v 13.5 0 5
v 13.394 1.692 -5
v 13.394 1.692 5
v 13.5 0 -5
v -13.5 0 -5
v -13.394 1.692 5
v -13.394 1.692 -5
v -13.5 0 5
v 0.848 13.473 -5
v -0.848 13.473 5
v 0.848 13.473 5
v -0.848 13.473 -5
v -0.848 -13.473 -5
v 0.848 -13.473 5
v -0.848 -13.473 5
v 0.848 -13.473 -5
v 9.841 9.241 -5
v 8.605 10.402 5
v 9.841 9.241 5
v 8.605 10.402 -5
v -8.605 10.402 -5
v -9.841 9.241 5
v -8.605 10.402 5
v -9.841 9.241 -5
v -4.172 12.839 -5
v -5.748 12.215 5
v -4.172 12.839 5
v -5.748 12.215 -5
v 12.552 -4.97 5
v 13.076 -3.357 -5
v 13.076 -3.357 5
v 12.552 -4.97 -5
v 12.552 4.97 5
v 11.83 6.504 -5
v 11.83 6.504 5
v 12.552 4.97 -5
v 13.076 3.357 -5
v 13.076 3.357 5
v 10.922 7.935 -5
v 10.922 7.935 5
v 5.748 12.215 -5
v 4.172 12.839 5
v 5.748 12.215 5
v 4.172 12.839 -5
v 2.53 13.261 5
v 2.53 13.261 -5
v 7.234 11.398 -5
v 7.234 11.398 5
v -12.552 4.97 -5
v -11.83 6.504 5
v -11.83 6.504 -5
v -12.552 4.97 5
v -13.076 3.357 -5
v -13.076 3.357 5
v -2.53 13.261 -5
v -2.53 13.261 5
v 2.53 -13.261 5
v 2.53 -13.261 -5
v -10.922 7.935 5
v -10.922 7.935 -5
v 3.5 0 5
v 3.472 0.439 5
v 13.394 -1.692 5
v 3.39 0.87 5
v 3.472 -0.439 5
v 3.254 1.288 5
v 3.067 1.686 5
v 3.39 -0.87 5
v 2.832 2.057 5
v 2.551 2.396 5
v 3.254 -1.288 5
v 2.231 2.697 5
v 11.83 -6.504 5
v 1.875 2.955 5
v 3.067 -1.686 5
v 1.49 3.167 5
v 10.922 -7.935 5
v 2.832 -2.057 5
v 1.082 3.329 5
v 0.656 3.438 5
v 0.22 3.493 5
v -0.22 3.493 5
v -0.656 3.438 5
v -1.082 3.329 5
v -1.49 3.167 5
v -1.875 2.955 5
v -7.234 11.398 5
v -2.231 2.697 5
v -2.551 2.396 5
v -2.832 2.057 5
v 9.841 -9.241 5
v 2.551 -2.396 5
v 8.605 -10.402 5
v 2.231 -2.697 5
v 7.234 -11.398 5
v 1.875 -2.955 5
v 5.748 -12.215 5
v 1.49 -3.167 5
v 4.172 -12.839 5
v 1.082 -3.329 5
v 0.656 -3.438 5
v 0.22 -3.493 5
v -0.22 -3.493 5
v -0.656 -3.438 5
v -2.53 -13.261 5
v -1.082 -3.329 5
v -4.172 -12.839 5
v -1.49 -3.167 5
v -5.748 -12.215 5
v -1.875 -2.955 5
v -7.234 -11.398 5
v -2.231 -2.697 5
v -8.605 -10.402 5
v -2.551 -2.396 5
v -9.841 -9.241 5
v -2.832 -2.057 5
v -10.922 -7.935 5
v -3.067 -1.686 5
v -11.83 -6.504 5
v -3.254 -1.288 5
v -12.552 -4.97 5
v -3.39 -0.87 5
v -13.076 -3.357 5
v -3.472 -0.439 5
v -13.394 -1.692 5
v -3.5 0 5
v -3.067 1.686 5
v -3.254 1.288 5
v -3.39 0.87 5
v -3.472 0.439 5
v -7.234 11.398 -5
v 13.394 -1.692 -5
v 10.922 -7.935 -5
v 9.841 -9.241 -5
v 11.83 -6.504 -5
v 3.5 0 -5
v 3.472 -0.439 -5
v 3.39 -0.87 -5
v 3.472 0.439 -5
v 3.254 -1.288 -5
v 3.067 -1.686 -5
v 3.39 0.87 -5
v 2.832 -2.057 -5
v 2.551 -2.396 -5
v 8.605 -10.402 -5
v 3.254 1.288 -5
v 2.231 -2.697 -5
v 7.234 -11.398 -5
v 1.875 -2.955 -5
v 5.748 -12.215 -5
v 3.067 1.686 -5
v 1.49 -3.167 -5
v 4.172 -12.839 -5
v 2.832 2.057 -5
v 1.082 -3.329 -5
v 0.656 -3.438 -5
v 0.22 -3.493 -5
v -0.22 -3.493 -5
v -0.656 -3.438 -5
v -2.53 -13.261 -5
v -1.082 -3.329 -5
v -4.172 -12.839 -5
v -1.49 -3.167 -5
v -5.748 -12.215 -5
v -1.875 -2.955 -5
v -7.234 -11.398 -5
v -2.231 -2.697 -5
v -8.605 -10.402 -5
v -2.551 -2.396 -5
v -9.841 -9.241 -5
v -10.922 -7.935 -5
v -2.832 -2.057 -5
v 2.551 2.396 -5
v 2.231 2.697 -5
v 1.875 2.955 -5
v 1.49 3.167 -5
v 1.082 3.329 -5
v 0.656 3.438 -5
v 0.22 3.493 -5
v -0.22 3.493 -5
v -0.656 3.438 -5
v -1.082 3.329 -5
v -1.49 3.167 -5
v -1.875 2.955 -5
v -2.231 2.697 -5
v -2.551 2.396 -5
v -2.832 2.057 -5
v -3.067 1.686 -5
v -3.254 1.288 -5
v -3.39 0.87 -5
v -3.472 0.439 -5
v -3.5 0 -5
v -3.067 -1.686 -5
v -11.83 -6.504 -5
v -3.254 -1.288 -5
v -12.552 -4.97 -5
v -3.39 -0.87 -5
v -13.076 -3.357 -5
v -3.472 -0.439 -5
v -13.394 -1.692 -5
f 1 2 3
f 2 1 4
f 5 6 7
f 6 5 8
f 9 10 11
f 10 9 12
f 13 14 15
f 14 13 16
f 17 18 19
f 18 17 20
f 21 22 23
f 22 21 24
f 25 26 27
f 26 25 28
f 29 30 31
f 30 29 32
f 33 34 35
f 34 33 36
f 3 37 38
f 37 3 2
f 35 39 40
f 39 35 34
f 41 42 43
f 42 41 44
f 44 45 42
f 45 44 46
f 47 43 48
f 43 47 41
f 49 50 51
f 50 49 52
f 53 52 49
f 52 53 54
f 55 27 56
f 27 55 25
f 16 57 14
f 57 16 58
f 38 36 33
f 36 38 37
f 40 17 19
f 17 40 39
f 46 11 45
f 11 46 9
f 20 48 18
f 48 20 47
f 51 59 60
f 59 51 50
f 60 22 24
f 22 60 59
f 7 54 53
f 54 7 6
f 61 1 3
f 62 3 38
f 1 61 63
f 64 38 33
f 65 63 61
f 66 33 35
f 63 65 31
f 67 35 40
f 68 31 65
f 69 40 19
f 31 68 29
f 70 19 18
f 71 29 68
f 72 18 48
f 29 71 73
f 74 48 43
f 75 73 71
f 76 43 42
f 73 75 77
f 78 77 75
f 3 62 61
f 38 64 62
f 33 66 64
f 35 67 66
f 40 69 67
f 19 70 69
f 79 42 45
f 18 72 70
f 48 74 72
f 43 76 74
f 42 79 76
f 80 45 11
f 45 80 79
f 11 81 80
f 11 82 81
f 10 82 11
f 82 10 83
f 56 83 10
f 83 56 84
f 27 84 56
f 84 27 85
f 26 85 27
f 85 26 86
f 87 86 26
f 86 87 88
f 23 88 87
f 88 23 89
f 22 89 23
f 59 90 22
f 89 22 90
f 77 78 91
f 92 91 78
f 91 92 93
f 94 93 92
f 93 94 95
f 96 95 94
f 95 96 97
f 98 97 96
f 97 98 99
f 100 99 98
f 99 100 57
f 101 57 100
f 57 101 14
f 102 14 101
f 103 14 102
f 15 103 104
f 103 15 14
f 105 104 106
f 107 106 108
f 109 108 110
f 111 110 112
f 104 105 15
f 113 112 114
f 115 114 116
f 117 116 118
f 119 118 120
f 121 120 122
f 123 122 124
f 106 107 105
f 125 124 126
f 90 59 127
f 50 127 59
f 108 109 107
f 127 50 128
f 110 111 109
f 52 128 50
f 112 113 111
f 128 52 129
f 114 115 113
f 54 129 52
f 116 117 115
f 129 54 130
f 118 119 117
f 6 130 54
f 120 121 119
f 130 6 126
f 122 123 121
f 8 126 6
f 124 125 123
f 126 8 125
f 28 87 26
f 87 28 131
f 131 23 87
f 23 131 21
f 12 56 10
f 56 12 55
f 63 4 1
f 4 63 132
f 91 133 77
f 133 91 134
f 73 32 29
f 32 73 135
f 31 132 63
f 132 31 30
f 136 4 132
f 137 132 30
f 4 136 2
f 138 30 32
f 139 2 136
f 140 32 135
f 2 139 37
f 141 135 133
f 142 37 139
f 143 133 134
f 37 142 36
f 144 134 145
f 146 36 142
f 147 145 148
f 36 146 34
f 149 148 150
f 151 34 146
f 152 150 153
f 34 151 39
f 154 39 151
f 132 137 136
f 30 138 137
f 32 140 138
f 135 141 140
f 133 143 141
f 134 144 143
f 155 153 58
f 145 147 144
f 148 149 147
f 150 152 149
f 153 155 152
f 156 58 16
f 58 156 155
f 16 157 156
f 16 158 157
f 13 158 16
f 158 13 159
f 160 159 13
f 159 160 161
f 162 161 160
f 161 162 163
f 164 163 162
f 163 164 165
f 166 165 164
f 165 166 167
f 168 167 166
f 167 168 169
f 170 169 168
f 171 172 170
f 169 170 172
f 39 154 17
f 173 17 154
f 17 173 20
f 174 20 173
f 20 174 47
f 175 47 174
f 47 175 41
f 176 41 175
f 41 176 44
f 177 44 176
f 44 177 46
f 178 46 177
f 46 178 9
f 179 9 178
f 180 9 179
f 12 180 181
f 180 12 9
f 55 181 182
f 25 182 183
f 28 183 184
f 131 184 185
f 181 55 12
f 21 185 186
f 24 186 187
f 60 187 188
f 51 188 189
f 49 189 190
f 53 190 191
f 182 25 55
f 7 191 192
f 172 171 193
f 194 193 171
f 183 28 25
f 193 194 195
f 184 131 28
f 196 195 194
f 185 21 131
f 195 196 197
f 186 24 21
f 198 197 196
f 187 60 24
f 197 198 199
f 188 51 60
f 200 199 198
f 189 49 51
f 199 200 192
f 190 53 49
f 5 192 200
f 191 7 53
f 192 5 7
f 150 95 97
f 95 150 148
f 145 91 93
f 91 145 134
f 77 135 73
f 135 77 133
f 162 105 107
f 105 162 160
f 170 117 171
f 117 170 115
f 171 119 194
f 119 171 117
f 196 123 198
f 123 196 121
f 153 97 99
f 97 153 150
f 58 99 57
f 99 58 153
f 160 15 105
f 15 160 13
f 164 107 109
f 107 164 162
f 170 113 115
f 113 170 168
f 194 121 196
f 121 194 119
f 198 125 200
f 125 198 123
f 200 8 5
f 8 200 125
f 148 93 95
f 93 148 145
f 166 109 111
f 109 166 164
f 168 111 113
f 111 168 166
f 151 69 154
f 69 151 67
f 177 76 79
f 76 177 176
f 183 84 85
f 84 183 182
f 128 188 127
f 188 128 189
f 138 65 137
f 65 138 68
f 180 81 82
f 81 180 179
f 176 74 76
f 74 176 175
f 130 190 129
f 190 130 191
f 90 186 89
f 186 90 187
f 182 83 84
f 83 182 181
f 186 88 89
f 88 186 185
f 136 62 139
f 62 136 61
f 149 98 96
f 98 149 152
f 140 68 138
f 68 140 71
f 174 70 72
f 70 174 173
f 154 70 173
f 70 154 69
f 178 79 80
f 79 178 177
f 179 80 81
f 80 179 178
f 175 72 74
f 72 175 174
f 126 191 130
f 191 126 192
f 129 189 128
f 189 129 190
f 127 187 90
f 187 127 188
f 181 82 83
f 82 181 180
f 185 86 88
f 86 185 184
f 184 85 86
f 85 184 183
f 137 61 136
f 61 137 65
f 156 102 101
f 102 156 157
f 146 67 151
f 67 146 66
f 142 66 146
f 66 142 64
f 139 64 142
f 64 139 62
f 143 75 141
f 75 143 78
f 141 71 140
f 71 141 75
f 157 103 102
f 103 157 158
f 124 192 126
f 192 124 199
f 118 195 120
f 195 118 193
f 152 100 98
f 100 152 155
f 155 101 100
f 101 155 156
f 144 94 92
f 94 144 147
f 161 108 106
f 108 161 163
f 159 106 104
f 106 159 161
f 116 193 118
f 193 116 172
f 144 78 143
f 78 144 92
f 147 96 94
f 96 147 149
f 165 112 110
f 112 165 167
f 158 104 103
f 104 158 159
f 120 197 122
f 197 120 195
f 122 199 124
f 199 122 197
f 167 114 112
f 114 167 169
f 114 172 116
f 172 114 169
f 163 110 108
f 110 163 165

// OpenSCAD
$fn = 50;


difference() {
	union() {
		translate(v = [0, 0, -5.0000000000]) {
			cylinder(h = 10, r = 13.5000000000);
		}
	}
	union() {
		translate(v = [0, 0, -100.0000000000]) {
			cylinder(h = 200, r = 3.5000000000);
		}
	}
}
